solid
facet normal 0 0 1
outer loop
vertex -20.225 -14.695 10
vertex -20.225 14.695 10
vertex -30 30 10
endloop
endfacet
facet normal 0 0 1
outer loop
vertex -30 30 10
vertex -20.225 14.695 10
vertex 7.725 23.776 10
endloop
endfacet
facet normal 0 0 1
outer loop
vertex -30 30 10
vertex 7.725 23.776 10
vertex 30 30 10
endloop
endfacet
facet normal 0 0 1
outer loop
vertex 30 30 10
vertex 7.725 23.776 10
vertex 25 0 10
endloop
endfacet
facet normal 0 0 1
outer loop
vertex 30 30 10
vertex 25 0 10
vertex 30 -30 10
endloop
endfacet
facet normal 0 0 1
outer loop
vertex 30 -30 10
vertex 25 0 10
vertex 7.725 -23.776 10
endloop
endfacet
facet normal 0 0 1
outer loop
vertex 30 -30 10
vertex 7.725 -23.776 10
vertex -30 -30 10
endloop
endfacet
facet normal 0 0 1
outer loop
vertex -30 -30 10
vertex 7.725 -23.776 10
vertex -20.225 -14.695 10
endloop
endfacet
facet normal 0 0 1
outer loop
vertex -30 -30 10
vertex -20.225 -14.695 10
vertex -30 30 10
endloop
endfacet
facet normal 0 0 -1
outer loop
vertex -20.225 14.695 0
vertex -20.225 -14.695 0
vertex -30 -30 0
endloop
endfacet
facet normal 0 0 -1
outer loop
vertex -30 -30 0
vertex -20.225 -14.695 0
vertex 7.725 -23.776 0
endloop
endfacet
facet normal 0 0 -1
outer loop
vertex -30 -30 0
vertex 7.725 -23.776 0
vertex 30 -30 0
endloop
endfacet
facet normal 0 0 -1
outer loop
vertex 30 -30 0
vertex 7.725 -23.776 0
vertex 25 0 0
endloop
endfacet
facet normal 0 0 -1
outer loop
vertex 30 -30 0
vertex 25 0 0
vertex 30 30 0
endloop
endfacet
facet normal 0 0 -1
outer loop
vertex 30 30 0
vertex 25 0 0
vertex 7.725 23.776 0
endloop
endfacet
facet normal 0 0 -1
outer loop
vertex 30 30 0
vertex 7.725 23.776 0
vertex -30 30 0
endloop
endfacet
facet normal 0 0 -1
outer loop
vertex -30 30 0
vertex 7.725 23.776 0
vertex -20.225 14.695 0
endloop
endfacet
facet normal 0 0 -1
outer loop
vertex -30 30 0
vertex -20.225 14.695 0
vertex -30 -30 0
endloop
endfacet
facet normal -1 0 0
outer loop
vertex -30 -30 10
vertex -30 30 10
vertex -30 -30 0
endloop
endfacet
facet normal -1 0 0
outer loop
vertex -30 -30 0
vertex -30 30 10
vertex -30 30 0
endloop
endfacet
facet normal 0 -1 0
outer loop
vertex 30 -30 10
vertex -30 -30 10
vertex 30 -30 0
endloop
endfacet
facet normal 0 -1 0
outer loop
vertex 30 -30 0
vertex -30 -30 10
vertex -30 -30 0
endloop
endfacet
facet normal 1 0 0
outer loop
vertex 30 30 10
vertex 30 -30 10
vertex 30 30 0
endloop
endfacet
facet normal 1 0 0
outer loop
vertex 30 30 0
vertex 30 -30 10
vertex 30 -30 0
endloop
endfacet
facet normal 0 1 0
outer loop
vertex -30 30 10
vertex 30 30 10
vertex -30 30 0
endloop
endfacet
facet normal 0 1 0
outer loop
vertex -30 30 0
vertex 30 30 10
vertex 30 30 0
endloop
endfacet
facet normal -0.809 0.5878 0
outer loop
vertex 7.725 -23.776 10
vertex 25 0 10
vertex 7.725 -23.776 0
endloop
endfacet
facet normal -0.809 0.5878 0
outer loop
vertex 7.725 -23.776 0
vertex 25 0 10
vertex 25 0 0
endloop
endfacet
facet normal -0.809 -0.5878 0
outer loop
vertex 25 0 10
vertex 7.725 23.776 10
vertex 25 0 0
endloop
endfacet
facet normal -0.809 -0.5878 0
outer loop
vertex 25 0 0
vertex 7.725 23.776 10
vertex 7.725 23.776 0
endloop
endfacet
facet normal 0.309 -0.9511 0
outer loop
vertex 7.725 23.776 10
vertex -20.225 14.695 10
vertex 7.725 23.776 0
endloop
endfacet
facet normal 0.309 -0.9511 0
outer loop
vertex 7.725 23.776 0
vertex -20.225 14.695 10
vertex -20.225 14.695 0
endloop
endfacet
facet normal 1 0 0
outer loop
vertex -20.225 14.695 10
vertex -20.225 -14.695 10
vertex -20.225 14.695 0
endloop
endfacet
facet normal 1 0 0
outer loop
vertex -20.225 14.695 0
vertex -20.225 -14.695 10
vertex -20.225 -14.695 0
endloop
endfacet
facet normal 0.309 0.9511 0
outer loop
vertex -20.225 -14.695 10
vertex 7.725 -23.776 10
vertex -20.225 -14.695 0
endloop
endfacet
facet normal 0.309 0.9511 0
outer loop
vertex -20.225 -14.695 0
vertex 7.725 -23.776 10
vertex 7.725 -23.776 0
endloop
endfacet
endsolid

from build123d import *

# Parameters (mm, degrees)
SCHIZZO1_W                   = 60
SCHIZZO1_H                   = 60
ESTRUSIONE_ESTRUSIONE1_DEPTH = 10


with BuildPart() as part:
    # Schizzo1 → Estrusione-Estrusione1 (new body)
    with BuildSketch(Plane.XY):
        Rectangle(SCHIZZO1_W, SCHIZZO1_H)
        Polygon((7.725424859, -23.776412907), (25, 0), (7.725424859, 23.776412907), (-20.225424859, 14.694631307), (-20.225424859, -14.694631307), align=None, mode=Mode.SUBTRACT)
    extrude(amount=ESTRUSIONE_ESTRUSIONE1_DEPTH)


solid = part.part
